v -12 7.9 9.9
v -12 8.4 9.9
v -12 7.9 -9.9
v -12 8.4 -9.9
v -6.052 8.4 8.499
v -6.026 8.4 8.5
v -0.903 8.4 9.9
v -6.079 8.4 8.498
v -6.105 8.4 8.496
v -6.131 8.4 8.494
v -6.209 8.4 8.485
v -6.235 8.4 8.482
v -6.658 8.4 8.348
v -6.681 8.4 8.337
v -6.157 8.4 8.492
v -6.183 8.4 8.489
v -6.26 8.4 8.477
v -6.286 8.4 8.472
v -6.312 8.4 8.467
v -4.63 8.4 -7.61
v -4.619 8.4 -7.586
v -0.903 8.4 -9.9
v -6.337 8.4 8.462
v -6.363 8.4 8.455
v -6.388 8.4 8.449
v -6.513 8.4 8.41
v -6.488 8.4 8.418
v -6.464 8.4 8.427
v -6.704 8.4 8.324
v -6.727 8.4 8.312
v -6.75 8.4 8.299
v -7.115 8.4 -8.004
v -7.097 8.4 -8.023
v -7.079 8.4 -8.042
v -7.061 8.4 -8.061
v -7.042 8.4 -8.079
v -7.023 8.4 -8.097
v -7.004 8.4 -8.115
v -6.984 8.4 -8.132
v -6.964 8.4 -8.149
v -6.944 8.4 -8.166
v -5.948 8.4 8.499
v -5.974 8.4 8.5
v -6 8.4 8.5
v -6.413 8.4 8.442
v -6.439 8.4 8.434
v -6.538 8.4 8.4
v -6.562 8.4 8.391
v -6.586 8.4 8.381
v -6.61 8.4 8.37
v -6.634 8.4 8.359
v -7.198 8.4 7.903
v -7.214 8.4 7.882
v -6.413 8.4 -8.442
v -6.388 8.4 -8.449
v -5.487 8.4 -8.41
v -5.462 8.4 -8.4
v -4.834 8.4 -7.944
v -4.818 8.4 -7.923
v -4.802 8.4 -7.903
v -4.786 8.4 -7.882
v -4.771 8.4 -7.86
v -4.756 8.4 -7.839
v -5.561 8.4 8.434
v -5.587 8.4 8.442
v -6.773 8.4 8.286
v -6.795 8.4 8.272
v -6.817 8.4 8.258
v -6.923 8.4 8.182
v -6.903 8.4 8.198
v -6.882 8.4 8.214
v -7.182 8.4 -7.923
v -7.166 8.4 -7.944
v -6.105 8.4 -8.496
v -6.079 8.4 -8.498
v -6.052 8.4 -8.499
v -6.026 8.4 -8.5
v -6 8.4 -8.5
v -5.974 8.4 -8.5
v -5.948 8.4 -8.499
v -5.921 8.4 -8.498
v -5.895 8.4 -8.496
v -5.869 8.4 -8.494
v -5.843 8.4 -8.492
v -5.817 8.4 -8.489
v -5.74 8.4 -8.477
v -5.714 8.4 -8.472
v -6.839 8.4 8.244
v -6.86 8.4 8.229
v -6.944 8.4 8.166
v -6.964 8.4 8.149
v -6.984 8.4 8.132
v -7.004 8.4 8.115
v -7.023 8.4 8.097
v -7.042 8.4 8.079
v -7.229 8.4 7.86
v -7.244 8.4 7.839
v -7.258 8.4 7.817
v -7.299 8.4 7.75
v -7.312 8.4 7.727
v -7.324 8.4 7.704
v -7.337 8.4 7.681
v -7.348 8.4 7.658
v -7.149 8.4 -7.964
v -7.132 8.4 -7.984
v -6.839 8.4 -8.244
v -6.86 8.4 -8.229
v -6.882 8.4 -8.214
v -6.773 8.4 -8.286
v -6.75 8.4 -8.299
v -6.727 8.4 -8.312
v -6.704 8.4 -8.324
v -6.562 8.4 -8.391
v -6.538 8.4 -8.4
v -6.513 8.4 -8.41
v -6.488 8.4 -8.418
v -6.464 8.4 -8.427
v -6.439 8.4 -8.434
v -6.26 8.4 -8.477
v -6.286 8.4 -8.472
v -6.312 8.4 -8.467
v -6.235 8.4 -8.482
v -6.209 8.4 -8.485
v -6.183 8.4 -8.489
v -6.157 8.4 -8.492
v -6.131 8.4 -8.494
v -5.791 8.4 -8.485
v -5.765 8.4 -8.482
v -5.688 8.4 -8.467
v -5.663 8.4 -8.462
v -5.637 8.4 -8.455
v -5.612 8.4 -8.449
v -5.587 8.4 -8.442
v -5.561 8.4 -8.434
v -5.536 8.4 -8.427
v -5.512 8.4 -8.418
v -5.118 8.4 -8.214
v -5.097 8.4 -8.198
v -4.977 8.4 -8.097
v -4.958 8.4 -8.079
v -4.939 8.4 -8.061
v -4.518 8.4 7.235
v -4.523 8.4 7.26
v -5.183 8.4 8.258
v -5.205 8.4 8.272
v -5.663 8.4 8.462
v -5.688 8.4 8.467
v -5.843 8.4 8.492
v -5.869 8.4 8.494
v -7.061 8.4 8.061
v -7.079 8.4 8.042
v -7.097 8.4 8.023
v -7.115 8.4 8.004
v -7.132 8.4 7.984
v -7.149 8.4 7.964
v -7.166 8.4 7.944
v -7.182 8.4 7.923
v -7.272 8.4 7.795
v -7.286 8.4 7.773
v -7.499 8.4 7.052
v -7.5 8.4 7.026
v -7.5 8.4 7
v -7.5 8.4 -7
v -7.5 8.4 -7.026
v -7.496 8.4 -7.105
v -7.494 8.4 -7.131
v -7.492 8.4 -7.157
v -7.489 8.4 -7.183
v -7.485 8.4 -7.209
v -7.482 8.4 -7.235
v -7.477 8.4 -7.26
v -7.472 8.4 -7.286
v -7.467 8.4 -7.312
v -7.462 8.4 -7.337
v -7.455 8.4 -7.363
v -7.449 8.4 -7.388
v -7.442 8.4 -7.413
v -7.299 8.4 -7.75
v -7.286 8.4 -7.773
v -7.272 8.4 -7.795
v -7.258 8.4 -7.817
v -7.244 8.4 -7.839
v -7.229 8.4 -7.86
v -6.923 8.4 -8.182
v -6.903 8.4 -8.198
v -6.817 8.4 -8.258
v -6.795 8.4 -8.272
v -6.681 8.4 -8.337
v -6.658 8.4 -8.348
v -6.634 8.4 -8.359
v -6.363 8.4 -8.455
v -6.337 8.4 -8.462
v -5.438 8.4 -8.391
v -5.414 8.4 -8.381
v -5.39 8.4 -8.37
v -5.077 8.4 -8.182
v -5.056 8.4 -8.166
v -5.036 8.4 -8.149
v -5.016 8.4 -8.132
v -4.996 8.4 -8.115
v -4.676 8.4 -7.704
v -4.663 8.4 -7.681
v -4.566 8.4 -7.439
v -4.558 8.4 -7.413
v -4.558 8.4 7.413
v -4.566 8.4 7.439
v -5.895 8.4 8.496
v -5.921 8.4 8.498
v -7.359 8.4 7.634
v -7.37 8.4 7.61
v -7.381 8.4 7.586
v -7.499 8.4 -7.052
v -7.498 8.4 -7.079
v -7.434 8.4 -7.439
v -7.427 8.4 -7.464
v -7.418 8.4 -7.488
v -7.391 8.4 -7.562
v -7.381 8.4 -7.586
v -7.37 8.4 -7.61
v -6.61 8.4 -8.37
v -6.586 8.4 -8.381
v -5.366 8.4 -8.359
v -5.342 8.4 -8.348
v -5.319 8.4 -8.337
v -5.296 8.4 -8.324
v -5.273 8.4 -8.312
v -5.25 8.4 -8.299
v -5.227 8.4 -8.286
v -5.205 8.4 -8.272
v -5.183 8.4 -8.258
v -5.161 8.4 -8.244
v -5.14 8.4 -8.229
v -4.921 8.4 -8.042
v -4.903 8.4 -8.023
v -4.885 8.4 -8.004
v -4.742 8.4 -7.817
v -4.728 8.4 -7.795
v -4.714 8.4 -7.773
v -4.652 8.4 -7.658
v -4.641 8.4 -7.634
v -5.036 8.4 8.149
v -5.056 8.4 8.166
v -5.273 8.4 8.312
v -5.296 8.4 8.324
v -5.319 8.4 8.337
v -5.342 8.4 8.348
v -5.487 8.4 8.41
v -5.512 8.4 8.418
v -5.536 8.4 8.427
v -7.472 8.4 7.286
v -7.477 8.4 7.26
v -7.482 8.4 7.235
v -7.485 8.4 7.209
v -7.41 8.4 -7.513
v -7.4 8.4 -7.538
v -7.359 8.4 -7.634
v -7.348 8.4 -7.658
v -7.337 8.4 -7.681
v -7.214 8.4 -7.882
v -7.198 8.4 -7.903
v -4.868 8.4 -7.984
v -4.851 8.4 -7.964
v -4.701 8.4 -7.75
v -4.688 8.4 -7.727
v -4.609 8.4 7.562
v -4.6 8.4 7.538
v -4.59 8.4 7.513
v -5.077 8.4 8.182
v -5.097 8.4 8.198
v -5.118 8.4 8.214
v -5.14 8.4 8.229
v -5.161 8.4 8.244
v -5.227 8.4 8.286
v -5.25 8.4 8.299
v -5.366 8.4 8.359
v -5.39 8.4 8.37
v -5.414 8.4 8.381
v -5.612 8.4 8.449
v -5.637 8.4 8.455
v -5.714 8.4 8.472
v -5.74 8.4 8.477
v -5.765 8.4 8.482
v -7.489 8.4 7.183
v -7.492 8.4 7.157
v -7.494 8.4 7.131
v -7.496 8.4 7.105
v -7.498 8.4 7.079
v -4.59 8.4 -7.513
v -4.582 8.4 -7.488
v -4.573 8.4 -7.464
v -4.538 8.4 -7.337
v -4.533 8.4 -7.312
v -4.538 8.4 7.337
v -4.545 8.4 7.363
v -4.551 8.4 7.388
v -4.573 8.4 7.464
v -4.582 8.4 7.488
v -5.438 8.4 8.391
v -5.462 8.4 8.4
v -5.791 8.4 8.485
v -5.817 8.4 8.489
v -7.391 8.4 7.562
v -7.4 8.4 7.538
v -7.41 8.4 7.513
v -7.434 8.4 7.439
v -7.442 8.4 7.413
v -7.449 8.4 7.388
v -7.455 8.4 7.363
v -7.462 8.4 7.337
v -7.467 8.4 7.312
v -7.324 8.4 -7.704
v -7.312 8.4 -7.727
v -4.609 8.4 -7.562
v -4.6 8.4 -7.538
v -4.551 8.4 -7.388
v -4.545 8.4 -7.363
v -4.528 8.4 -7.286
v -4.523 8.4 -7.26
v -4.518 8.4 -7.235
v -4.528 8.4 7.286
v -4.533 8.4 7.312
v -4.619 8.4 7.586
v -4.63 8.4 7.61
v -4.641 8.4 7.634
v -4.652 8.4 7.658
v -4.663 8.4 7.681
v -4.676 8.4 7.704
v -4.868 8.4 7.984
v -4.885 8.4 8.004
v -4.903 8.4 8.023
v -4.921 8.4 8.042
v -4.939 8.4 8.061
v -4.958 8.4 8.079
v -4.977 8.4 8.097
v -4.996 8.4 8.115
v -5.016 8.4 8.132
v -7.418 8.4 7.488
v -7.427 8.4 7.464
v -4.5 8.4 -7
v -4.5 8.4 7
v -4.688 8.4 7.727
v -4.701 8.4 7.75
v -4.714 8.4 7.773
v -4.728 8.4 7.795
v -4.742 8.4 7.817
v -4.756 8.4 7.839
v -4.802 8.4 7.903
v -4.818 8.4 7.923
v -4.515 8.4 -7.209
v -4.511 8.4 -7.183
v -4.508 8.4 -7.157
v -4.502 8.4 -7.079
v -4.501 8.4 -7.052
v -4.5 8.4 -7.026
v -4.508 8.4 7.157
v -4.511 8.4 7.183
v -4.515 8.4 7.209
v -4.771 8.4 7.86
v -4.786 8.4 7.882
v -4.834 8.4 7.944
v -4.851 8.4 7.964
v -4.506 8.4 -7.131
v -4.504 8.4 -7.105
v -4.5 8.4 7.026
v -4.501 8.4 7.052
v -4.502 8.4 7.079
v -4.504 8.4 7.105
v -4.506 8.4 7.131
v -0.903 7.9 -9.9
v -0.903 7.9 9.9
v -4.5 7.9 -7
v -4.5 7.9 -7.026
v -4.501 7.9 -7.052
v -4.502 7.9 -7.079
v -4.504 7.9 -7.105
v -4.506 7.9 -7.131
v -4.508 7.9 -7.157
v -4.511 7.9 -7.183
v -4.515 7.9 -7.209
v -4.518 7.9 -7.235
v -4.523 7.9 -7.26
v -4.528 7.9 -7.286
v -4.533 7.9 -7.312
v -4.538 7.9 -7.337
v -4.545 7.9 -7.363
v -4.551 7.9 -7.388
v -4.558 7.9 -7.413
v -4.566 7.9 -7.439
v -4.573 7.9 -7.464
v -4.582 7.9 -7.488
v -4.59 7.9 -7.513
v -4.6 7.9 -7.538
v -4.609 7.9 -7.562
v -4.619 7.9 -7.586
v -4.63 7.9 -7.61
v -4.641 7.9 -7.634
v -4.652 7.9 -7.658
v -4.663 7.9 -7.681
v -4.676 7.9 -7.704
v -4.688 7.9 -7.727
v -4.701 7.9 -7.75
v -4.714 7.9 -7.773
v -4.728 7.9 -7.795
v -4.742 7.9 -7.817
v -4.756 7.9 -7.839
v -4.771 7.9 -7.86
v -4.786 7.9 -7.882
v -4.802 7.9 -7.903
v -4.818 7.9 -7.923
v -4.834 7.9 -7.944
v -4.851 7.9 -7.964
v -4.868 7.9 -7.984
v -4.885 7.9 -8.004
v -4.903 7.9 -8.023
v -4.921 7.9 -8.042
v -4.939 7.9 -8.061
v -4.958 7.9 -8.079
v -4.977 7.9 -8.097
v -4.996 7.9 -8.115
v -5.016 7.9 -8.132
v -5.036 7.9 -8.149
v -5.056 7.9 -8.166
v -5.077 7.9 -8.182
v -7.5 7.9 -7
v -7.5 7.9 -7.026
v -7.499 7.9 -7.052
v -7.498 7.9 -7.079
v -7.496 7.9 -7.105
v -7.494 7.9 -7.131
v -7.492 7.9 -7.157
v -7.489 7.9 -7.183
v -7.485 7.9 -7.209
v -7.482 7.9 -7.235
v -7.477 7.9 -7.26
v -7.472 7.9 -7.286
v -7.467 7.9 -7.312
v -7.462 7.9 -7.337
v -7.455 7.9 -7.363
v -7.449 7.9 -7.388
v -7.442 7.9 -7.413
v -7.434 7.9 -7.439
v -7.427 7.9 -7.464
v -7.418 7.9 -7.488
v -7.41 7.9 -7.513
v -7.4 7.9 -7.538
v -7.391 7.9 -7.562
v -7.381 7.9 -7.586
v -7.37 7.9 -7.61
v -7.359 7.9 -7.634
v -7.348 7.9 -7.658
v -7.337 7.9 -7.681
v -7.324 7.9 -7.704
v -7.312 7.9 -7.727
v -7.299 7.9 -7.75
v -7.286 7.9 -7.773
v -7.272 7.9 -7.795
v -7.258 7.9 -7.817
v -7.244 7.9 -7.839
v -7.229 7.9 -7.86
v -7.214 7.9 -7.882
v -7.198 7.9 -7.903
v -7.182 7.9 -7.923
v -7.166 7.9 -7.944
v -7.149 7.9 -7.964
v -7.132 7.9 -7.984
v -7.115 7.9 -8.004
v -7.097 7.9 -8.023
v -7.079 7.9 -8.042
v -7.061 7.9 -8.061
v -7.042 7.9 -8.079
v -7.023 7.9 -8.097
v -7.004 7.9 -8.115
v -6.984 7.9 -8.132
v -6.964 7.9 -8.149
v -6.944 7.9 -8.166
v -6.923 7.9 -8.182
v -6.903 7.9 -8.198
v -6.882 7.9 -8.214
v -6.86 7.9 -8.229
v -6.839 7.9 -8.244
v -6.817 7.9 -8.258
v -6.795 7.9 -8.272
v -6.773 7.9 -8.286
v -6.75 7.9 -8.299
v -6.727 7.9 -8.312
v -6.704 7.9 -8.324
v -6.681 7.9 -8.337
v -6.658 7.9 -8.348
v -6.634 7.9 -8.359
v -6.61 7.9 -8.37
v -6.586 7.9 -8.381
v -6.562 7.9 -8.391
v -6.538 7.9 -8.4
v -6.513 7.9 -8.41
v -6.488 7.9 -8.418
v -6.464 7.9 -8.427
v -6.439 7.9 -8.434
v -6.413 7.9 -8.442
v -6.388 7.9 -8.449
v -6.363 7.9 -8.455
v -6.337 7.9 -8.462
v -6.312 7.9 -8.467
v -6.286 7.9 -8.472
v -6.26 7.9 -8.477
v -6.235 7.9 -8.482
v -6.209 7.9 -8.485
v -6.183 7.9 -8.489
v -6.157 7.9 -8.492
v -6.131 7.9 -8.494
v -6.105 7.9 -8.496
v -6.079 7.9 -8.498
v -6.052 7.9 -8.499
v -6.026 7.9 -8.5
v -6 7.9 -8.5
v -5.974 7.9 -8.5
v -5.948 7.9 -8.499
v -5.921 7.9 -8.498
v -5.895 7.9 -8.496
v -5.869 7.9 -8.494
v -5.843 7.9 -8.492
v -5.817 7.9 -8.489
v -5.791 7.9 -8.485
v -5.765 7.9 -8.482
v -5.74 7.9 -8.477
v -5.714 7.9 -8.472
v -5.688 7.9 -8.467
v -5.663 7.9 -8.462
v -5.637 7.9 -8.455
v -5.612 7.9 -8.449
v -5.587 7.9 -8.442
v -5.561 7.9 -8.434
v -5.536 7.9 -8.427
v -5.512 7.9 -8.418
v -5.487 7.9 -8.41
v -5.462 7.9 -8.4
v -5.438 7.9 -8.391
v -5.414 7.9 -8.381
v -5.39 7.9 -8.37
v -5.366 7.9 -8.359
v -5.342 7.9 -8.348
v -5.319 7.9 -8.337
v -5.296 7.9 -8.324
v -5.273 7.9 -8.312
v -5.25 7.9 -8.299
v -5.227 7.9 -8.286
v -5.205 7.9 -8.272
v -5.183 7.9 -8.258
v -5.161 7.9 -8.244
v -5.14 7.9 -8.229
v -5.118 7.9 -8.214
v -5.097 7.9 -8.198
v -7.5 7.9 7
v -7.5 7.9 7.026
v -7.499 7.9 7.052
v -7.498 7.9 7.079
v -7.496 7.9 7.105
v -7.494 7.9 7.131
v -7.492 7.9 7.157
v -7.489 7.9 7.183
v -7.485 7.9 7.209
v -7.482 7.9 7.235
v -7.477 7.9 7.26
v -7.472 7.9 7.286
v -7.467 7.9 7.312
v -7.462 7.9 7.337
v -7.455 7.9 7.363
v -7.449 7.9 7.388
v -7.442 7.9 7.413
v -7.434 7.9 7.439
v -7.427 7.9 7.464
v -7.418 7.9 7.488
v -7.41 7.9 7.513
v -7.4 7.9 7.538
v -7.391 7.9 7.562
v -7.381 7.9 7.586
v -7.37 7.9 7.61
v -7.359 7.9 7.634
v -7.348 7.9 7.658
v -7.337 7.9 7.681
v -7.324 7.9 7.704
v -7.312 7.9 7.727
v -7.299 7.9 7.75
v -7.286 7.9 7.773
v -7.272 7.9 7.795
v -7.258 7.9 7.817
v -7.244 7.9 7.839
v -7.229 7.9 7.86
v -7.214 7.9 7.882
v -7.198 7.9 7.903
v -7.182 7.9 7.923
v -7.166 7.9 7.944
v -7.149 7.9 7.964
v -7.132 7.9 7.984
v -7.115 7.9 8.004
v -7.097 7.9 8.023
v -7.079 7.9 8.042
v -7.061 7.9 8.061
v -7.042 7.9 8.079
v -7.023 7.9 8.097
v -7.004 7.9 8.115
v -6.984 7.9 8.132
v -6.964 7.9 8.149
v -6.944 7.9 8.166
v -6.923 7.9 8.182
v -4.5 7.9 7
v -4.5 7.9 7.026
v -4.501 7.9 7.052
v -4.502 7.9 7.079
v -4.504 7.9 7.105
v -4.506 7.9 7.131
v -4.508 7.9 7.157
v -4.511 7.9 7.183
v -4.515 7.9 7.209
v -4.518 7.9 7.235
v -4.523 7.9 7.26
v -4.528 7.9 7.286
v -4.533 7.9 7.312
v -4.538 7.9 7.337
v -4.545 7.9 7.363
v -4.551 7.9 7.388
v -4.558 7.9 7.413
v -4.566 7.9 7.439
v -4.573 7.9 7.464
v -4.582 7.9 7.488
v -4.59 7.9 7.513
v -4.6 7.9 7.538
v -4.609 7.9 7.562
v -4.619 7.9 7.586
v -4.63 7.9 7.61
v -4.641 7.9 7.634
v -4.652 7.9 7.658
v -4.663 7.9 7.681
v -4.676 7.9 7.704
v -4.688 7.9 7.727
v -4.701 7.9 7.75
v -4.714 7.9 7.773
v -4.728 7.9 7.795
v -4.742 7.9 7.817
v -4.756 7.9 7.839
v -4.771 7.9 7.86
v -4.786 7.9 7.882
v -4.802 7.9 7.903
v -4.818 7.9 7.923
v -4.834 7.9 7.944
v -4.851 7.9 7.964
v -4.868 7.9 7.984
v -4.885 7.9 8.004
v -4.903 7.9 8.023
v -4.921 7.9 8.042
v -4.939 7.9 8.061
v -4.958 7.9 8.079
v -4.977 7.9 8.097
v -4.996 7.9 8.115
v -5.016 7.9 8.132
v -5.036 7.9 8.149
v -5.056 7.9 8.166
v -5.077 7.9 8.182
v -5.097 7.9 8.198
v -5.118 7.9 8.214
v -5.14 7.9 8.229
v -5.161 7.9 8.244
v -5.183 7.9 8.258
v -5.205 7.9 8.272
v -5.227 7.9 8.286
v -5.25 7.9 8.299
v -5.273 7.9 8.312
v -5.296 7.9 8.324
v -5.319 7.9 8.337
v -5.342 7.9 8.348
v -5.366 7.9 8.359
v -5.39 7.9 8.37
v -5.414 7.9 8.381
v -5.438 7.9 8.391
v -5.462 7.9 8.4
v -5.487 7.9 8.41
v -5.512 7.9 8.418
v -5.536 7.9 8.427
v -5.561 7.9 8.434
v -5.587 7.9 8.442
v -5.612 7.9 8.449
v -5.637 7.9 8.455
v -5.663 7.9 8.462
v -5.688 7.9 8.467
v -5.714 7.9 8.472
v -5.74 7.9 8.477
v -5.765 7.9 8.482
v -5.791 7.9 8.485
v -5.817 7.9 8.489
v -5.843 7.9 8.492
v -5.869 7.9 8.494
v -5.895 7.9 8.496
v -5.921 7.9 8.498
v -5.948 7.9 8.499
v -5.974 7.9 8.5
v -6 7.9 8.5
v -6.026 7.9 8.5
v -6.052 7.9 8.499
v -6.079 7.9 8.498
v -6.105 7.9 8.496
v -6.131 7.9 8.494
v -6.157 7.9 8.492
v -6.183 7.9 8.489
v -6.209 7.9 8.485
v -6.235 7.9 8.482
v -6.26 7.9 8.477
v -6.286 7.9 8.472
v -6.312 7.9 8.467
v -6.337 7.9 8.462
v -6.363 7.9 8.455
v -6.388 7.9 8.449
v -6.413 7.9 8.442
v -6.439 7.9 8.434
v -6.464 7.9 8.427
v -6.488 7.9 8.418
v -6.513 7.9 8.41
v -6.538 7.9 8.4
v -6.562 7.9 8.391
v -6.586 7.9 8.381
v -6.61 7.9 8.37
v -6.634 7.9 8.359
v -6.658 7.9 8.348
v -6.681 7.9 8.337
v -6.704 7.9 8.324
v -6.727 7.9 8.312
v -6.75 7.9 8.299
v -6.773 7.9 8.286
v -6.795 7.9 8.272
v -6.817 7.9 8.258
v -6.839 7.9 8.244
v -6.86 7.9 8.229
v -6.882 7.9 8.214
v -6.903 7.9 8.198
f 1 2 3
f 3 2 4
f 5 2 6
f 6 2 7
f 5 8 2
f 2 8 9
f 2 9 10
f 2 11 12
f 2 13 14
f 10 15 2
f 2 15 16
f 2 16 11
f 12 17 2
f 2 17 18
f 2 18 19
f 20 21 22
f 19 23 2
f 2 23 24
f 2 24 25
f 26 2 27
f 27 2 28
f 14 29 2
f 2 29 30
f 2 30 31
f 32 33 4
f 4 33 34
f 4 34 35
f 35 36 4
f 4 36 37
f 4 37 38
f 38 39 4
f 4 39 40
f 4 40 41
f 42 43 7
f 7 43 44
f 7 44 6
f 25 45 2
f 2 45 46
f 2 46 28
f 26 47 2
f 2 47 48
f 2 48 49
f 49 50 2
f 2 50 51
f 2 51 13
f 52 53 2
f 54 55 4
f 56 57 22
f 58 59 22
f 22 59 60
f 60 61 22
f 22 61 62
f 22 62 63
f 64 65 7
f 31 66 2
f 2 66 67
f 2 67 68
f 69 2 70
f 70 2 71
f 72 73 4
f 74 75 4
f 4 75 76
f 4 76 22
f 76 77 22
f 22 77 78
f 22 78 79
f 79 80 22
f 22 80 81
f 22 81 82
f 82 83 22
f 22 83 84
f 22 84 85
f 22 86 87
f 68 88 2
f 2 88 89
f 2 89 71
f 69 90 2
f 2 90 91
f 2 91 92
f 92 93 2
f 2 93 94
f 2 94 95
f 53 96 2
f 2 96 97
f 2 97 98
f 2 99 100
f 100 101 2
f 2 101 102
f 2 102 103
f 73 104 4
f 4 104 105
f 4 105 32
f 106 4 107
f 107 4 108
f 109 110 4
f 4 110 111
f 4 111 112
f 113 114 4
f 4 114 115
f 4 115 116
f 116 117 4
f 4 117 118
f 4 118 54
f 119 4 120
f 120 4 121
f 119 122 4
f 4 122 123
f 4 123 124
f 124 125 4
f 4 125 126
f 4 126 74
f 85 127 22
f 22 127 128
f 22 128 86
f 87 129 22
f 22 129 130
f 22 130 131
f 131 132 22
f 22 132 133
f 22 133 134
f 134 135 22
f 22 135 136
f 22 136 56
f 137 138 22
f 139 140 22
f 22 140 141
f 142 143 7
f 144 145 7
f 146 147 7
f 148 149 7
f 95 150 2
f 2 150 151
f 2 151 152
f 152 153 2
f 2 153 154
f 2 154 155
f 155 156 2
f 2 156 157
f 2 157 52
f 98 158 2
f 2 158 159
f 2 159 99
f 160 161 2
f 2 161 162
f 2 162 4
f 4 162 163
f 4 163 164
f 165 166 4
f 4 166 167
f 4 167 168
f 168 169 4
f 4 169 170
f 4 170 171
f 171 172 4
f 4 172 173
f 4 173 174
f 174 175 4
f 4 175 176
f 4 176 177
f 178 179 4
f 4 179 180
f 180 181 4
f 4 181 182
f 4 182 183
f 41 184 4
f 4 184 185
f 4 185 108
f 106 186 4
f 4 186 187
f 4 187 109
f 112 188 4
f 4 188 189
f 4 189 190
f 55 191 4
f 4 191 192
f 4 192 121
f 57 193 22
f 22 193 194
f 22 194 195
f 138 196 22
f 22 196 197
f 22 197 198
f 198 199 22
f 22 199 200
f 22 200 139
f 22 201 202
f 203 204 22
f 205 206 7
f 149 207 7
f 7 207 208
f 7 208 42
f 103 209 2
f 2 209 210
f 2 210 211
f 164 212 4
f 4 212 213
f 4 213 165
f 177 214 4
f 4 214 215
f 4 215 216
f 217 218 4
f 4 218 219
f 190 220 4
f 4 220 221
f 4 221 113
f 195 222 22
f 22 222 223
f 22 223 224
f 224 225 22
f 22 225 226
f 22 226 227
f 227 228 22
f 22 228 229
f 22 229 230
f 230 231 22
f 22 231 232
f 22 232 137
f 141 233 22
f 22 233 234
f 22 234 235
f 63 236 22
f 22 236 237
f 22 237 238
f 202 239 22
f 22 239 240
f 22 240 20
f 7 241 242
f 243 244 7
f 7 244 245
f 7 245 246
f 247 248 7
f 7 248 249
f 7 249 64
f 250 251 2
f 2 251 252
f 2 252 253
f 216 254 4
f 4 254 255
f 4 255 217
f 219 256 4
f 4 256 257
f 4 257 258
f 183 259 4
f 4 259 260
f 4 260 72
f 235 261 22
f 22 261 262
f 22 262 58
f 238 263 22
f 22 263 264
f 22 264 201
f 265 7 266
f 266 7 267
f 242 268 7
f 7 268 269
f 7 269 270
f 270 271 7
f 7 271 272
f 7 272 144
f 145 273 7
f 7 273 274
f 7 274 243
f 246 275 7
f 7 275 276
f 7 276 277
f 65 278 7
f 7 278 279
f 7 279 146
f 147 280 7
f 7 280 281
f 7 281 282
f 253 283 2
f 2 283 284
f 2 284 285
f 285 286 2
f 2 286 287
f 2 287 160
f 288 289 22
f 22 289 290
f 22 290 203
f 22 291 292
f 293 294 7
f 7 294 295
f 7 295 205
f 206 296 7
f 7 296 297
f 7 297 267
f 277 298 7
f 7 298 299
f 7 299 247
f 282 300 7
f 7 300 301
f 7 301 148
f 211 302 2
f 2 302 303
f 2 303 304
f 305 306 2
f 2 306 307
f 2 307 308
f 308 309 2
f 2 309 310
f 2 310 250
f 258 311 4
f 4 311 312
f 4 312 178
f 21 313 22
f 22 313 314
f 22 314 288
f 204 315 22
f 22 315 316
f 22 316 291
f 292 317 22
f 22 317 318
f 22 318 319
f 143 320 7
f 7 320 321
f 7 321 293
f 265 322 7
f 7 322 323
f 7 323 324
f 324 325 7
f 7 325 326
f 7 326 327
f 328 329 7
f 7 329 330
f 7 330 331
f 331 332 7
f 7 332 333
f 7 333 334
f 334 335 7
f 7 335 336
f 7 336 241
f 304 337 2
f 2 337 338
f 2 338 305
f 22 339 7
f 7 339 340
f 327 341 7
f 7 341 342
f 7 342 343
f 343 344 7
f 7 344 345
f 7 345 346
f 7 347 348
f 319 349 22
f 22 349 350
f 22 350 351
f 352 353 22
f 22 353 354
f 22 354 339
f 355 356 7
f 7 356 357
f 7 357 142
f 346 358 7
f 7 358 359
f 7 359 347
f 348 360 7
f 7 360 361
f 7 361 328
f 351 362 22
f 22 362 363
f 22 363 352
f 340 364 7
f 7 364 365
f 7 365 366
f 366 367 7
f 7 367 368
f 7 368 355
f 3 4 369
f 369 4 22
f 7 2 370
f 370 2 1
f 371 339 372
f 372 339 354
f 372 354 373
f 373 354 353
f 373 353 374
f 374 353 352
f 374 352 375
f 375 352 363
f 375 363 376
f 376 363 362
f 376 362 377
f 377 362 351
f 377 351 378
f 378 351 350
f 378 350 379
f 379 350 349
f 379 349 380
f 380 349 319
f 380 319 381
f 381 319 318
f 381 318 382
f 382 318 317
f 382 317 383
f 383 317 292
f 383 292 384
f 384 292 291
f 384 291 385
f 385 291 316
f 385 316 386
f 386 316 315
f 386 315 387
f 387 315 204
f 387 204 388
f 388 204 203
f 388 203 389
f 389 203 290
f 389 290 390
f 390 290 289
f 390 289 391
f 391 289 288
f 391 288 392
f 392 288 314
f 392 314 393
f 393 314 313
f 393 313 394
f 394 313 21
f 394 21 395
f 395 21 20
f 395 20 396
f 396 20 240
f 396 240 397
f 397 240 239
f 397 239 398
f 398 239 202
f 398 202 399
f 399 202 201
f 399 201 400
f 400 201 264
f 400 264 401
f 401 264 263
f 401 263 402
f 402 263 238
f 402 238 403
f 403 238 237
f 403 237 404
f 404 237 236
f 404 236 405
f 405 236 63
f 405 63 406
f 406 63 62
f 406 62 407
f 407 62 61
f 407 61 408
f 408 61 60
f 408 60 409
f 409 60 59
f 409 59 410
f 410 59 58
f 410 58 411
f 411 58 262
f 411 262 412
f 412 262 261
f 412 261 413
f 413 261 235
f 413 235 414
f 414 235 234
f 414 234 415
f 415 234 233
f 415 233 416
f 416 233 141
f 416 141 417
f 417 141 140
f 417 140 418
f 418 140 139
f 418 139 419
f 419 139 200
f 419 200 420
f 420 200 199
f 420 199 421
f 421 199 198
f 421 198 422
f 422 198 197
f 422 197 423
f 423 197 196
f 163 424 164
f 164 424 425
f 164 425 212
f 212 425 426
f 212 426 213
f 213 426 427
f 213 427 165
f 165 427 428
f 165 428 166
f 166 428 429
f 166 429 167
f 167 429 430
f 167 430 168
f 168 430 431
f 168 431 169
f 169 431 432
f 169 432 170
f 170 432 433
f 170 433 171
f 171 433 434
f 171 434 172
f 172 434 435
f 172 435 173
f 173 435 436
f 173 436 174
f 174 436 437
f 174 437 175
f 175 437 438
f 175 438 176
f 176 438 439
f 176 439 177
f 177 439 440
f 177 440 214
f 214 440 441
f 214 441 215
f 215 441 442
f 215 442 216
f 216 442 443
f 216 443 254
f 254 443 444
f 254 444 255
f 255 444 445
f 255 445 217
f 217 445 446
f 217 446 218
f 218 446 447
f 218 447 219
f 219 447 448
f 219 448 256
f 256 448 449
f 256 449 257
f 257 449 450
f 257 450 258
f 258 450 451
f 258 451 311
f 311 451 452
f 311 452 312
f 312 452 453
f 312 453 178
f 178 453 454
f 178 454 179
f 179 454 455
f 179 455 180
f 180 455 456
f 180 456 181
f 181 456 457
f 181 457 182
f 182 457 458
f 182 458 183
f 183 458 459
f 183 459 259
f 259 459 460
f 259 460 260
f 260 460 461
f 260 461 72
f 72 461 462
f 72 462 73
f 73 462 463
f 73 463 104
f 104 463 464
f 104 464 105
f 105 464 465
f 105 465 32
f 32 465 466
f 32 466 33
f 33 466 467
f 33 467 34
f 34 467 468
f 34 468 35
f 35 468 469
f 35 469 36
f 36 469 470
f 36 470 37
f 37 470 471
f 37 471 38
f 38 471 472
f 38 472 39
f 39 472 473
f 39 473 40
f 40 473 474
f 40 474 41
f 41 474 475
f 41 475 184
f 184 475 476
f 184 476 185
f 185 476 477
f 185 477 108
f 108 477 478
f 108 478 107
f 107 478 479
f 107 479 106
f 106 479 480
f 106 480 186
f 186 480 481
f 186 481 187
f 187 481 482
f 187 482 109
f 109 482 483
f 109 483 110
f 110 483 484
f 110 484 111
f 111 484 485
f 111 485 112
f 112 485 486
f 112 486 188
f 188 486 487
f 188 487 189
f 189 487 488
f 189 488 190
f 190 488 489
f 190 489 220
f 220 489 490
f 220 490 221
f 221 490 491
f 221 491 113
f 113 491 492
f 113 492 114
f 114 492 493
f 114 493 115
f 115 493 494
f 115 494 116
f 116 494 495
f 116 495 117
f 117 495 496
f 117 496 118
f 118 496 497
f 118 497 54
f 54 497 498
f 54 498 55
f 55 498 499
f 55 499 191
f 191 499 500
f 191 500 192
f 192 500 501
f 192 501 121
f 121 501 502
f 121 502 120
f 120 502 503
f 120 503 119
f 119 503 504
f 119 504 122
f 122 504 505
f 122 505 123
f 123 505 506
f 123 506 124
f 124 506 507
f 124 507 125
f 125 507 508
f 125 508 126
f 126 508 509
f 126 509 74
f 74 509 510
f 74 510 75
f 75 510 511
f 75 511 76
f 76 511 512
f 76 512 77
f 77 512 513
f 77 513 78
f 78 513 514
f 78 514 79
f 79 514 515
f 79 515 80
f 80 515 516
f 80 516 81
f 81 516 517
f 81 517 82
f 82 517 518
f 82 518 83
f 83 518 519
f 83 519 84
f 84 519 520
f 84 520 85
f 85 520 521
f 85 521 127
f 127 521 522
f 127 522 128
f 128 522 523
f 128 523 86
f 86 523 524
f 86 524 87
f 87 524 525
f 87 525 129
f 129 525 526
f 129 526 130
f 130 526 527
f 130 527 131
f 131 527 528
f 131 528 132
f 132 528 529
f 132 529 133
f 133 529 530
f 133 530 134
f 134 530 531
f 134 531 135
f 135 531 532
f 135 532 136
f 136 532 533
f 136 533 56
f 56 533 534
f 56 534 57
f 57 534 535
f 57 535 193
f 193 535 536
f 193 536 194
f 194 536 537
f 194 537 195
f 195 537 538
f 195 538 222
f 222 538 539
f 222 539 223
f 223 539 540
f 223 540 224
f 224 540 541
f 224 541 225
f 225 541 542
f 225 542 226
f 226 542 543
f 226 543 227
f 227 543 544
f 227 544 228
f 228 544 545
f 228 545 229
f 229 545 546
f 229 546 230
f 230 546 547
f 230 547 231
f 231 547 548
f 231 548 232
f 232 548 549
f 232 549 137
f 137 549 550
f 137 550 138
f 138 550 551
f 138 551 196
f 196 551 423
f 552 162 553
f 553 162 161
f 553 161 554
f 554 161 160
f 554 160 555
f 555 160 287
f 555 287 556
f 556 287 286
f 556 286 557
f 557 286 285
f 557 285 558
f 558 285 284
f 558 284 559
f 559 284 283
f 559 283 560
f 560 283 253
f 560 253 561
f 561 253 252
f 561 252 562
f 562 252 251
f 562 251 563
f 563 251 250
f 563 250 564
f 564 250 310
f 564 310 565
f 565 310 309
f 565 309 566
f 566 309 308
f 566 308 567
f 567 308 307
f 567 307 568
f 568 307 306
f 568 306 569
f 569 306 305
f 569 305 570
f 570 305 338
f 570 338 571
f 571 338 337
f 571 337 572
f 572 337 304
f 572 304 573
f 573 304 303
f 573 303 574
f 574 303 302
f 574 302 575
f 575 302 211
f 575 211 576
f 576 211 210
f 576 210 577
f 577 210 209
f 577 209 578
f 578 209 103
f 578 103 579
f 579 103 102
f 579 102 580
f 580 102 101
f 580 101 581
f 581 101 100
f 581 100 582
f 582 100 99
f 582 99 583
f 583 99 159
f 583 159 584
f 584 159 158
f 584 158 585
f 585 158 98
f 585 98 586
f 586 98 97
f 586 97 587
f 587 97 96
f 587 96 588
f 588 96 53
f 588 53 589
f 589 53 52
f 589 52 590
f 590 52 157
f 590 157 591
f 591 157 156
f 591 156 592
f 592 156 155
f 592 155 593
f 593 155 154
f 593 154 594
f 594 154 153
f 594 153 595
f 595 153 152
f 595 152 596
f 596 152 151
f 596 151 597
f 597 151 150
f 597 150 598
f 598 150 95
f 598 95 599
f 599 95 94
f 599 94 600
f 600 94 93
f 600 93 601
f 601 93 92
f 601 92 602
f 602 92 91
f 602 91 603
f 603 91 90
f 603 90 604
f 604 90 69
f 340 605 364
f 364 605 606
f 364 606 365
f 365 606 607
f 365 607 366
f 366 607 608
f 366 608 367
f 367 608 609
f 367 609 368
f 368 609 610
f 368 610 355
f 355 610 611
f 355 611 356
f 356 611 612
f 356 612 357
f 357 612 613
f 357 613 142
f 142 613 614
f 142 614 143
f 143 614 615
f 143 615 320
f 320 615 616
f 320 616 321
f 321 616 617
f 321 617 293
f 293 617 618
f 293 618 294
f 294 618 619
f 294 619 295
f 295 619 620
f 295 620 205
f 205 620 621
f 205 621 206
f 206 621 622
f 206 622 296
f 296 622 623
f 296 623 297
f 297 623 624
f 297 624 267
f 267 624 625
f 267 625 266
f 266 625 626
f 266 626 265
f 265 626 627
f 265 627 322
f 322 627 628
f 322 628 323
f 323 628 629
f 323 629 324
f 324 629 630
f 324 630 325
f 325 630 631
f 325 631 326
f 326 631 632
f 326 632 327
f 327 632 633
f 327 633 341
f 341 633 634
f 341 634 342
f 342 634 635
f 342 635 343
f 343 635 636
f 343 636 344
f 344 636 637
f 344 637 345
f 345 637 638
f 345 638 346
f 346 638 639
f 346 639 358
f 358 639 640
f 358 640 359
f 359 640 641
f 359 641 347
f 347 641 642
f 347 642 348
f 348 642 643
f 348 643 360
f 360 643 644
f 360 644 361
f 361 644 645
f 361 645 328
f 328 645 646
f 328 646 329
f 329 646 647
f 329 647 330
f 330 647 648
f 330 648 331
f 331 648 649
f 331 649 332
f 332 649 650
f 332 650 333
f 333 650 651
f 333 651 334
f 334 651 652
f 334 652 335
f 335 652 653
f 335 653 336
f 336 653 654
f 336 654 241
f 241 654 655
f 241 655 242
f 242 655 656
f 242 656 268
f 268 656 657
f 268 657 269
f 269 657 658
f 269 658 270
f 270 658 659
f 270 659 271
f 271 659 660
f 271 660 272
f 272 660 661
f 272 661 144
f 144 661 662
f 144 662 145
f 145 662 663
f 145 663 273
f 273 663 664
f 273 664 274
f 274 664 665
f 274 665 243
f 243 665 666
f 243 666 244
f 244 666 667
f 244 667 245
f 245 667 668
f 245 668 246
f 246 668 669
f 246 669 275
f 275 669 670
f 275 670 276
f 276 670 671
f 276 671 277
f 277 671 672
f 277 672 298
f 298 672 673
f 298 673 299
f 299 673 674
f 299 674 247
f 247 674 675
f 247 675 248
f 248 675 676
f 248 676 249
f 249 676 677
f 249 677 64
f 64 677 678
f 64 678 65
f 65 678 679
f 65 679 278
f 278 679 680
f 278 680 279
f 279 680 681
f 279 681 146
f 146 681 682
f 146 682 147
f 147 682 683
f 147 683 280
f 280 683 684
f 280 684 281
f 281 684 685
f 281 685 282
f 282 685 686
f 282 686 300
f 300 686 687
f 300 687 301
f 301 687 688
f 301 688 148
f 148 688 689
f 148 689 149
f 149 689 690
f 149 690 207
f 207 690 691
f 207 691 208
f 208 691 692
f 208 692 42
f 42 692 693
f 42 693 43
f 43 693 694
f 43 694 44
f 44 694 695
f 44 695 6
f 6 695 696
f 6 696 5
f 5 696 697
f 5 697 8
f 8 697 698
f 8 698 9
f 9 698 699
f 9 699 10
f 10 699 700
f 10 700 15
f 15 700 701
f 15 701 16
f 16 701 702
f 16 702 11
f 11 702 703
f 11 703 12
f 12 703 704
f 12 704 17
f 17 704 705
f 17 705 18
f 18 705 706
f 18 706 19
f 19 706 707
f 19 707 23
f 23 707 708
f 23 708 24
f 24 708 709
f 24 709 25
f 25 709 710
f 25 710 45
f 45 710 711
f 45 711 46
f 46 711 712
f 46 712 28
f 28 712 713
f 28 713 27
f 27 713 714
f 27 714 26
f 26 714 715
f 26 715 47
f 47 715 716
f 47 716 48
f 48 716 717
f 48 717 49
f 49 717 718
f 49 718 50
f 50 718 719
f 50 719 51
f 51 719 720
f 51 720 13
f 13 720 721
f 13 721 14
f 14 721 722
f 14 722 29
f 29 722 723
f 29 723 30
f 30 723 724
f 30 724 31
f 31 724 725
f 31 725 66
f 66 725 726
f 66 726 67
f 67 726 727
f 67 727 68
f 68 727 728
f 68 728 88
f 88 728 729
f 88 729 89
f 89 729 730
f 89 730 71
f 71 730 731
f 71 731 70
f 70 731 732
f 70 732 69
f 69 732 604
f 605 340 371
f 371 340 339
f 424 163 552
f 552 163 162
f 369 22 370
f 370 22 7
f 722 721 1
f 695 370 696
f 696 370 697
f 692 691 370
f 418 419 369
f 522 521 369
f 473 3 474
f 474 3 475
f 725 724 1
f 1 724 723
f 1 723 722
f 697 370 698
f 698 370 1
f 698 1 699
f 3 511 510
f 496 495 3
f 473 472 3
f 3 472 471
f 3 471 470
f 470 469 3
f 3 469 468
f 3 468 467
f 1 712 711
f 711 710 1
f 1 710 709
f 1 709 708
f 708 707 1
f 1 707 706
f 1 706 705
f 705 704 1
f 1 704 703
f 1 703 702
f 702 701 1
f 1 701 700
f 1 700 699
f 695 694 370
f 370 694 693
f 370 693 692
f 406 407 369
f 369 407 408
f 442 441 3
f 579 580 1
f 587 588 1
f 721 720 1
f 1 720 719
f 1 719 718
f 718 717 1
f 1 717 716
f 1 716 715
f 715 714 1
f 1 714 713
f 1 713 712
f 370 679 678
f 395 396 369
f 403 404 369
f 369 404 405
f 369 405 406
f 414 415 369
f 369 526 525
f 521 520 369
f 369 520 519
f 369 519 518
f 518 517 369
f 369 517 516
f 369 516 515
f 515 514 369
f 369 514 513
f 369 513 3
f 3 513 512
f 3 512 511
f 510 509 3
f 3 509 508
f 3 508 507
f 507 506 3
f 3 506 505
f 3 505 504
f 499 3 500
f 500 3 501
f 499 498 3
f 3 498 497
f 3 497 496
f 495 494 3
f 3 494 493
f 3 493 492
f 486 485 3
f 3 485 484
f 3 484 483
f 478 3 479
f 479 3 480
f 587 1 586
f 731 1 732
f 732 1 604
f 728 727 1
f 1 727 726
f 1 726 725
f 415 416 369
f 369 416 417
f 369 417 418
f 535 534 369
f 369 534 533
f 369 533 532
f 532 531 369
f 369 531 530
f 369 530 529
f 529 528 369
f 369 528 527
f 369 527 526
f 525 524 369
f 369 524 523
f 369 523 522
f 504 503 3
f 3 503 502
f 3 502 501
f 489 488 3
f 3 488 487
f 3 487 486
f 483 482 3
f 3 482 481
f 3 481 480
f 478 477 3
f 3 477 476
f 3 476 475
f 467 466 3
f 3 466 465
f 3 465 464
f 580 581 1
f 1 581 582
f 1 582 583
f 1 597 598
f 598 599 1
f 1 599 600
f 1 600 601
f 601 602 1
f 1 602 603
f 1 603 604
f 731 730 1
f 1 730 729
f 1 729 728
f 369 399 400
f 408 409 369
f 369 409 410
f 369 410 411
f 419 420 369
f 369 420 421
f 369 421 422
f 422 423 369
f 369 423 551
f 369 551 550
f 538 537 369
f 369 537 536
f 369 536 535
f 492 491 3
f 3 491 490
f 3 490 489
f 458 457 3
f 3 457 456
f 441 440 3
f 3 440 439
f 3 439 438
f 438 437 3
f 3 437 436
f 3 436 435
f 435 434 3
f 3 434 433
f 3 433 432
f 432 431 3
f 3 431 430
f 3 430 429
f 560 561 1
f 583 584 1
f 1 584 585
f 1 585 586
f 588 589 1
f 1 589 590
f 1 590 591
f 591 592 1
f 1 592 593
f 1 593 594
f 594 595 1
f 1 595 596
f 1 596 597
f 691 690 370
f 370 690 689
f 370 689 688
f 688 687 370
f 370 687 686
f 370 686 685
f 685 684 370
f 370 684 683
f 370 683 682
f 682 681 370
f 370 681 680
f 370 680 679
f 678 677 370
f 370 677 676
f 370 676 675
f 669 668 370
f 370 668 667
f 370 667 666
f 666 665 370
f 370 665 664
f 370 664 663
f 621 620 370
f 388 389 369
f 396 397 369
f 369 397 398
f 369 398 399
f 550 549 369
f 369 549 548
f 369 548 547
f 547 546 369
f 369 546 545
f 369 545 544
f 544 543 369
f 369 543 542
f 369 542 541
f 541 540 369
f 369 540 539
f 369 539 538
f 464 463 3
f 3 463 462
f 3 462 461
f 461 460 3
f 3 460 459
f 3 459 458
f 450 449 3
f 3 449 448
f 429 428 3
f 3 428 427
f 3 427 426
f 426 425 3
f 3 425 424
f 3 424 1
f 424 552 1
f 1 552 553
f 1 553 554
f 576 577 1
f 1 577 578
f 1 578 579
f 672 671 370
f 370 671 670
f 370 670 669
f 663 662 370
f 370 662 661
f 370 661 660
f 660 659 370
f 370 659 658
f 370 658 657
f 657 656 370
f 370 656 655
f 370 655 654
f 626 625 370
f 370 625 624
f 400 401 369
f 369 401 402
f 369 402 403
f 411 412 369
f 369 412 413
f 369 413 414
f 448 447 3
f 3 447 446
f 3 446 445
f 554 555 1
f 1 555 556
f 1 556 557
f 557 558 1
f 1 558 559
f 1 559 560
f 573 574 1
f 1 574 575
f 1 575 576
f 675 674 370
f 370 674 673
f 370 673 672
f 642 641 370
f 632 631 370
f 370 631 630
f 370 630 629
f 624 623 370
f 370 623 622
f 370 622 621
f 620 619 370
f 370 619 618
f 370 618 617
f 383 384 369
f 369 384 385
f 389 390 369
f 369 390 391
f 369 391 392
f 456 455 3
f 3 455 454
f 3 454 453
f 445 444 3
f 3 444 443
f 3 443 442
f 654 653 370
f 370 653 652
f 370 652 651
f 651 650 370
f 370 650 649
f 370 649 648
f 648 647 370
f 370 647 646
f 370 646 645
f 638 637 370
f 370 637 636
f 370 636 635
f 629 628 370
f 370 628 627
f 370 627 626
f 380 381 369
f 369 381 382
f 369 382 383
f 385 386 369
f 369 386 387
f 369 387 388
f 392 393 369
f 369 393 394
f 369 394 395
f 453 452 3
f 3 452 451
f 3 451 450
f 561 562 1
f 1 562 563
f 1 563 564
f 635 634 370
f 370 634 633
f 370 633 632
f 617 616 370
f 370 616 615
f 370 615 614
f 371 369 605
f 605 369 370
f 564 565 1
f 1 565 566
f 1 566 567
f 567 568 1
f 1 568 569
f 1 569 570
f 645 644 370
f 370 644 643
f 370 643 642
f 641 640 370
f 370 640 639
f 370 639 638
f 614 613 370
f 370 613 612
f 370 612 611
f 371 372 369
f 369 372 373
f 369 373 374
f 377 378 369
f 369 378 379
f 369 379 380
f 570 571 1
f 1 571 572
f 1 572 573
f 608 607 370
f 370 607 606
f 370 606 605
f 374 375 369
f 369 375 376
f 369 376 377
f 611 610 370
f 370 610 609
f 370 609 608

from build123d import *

# Parameters (mm, degrees)
SKETCH1_W               = 13.8
SKETCH1_H               = 8.8
BOSS_EXTRUDE1_DEPTH     = 3
SKETCH2_W               = 2
SKETCH2_H               = 35
BOSS_EXTRUDE2_DEPTH     = 3
SKETCH3_W               = 1.2
SKETCH3_H               = 6
BOSS_EXTRUDE3_DEPTH     = 7
FILLET3_R               = 10
SKETCH5_W               = 15
SKETCH5_H               = 13.8
BOSS_EXTRUDE4_DEPTH     = 4
SKETCH6_R               = 1.5
CUT_EXTRUDE4_DEPTH      = 38.968539608
BOSS_EXTRUDE5_DEPTH     = 2
CHAMFER2_SIZE           = 3
BOSS_EXTRUDE7_DEPTH     = 1.2
SKETCH12_W              = 15
SKETCH12_H              = 4
BOSS_EXTRUDE8_DEPTH     = 3
SKETCH13_W              = 15
SKETCH13_H              = 4
BOSS_EXTRUDE9_DEPTH     = 3
CUT_EXTRUDE7_DEPTH      = 43.28486727
CUT_EXTRUDE7_DEPTH_BACK = 43.28486727
CUT_EXTRUDE8_DEPTH      = 43.28486727
CUT_EXTRUDE8_DEPTH_BACK = 43.28486727
SKETCH15_W              = 0.807911756
SKETCH15_H              = 0.64
CUT_EXTRUDE9_DEPTH      = 41.244591358
CUT_EXTRUDE9_DEPTH_BACK = 41.244591358
SKETCH16_W              = 0.64
SKETCH16_H              = 0.6
CHAMFER3_SIZE           = 1
SKETCH18_W              = 20.701942652
SKETCH18_H              = 41.728044518
CUT_EXTRUDE10_DEPTH     = 36
SKETCH19_W              = 11.097134513
SKETCH19_H              = 20.928514419
CUT_EXTRUDE11_DEPTH     = 3.5


# Some blends are built 0.0001 mm under size
with BuildPart() as part:
    # Sketch1 → Boss-Extrude1 (new body)
    with BuildSketch(Plane(origin=(0, 0, 0), x_dir=(0, 0, -1), z_dir=(1, 0, 0))):
        Rectangle(SKETCH1_W, SKETCH1_H)
    extrude(amount=BOSS_EXTRUDE1_DEPTH)

    # Sketch2 → Boss-Extrude2 (add)
    with BuildSketch(Plane(origin=(3, 0, 0), x_dir=(0, 0, -1), z_dir=(1, 0, 0))):
        with Locations((0, -13.1)):
            Rectangle(SKETCH2_W, SKETCH2_H)
    extrude(amount=BOSS_EXTRUDE2_DEPTH)

    # Sketch3 → Boss-Extrude3 (add)
    with BuildSketch(Plane(origin=(6, 0, 0), x_dir=(0, 0, -1), z_dir=(1, 0, 0))):
        with Locations((0, -27.6)):
            Rectangle(SKETCH3_W, SKETCH3_H)
    extrude(amount=BOSS_EXTRUDE3_DEPTH)

    # Fillet3
    # the kernel refuses this fillet: 10 mm, written as the material it adds along each edge
    with BuildSketch(Plane(origin=(3, -4.4, 1), x_dir=(-1, 0, 0), z_dir=(0, 0, -1))) as fillet3_piece_1:
        with BuildLine():
            CenterArc((10, -7.141428429), FILLET3_R, 134.427004001, 45.572995999)
            Line((0, -7.141428429), (0, 0))
            Line((0, 0), (3, 0))
        make_face()
    extrude(amount=2)

    # Sketch5 → Boss-Extrude4 (add)
    with BuildSketch(Plane(origin=(0, 4.4, 0), x_dir=(1, 0, 0), z_dir=(0, 1, 0))):
        with Locations((-4.5, 0)):
            Rectangle(SKETCH5_W, SKETCH5_H)
    extrude(amount=BOSS_EXTRUDE4_DEPTH)

    # Sketch6 → Cut-Extrude4 (cut, through all)
    with BuildSketch(Plane.XZ.offset(-4.4)):
        with Locations(Location((-6, 3, 0), (0, 0, 270))):
            Circle(SKETCH6_R)
        with Locations(Location((-6, -3, 0), (0, 0, 270))):
            Circle(SKETCH6_R)
    extrude(amount=-CUT_EXTRUDE4_DEPTH, mode=Mode.SUBTRACT)

    # Sketch8 → Boss-Extrude5 (add)
    with BuildSketch(Plane(origin=(0, 0, -1), x_dir=(-1, 0, 0), z_dir=(0, 0, -1))):
        Polygon((-3, -18.758153574), (0, -4.4), (-3, -4.4), align=None)
    extrude(amount=-BOSS_EXTRUDE5_DEPTH)

    # Chamfer2
    chamfer2_edges = [part.edges().sort_by_distance(p)[0] for p in [
        (3, 4.4, 0),
    ]]
    chamfer(chamfer2_edges, length=CHAMFER2_SIZE - 0.0001)  # a hair under: the kernel refuses the full size

    # Sketch11 → Boss-Extrude7 (add)
    with BuildSketch(Plane(origin=(0, 0, -0.6), x_dir=(-1, 0, 0), z_dir=(0, 0, -1))):
        Polygon((-6, -24.6), (-13, -24.6), (-6, 1.742521041), align=None)
    extrude(amount=-BOSS_EXTRUDE7_DEPTH)

    # Sketch12 → Boss-Extrude8 (add)
    with BuildSketch(Plane(origin=(0, 0, -6.9), x_dir=(-1, 0, 0), z_dir=(0, 0, -1))):
        with Locations((4.5, 6.4)):
            Rectangle(SKETCH12_W, SKETCH12_H)
    extrude(amount=BOSS_EXTRUDE8_DEPTH)

    # Sketch13 → Boss-Extrude9 (add)
    with BuildSketch(Plane.XY.offset(6.9)):
        with Locations((-4.5, 6.4)):
            Rectangle(SKETCH13_W, SKETCH13_H)
    extrude(amount=BOSS_EXTRUDE9_DEPTH)

    # Sketch14 → Cut-Extrude7 (cut, two sides: drawn at the far end of the back side and taken through both)
    with BuildSketch(Plane(origin=(0, 8.4, 0), x_dir=(1, 0, 0), z_dir=(0, 1, 0)).offset(-CUT_EXTRUDE7_DEPTH_BACK)):
        with BuildLine():
            Line((-7.5, 7), (-7.5, -7))
            ThreePointArc((-7.5, -7), (-6, -8.5), (-4.5, -7))
            Line((-4.5, -7), (-4.5, 7))
            ThreePointArc((-4.5, 7), (-6, 8.5), (-7.5, 7))
        make_face()
    extrude(amount=CUT_EXTRUDE7_DEPTH + CUT_EXTRUDE7_DEPTH_BACK, mode=Mode.SUBTRACT)

    # Sketch15 → Cut-Extrude8 (cut, two sides: drawn at the far end of the back side and taken through both)
    with BuildSketch(Plane.XZ.offset(30.6).offset(-CUT_EXTRUDE8_DEPTH_BACK)):
        with Locations((12.596044122, 0)):
            Rectangle(SKETCH15_W, SKETCH15_H)
    extrude(amount=CUT_EXTRUDE8_DEPTH + CUT_EXTRUDE8_DEPTH_BACK, mode=Mode.SUBTRACT)

    # Sketch16 → Cut-Extrude9 (cut, two sides: drawn at the far end of the back side and taken through both)
    with BuildSketch(Plane(origin=(12.192088244, 0, 0), x_dir=(0, 0, -1), z_dir=(1, 0, 0)).offset(-CUT_EXTRUDE9_DEPTH_BACK)):
        with Locations((0, -30.3)):
            Rectangle(SKETCH16_W, SKETCH16_H)
    extrude(amount=CUT_EXTRUDE9_DEPTH + CUT_EXTRUDE9_DEPTH_BACK, mode=Mode.SUBTRACT)

    # Chamfer3
    chamfer3_edges = [part.edges().sort_by_distance(p)[0] for p in [
        (12.192088244, -30, 0),
    ]]
    chamfer(chamfer3_edges, length=CHAMFER3_SIZE)

    # Sketch18 → Cut-Extrude10 (cut)
    with BuildSketch(Plane.XY.offset(9.9)):
        with Locations((9.448105839, -12.464022259)):
            Rectangle(SKETCH18_W, SKETCH18_H)
    extrude(amount=-CUT_EXTRUDE10_DEPTH, mode=Mode.SUBTRACT)

    # Sketch19 → Cut-Extrude11 (cut)
    with BuildSketch(Plane.XZ.offset(-4.4)):
        with Locations((-6.451432743, 0.56425721)):
            Rectangle(SKETCH19_W, SKETCH19_H)
    extrude(amount=-CUT_EXTRUDE11_DEPTH, mode=Mode.SUBTRACT)


solid = part.part
